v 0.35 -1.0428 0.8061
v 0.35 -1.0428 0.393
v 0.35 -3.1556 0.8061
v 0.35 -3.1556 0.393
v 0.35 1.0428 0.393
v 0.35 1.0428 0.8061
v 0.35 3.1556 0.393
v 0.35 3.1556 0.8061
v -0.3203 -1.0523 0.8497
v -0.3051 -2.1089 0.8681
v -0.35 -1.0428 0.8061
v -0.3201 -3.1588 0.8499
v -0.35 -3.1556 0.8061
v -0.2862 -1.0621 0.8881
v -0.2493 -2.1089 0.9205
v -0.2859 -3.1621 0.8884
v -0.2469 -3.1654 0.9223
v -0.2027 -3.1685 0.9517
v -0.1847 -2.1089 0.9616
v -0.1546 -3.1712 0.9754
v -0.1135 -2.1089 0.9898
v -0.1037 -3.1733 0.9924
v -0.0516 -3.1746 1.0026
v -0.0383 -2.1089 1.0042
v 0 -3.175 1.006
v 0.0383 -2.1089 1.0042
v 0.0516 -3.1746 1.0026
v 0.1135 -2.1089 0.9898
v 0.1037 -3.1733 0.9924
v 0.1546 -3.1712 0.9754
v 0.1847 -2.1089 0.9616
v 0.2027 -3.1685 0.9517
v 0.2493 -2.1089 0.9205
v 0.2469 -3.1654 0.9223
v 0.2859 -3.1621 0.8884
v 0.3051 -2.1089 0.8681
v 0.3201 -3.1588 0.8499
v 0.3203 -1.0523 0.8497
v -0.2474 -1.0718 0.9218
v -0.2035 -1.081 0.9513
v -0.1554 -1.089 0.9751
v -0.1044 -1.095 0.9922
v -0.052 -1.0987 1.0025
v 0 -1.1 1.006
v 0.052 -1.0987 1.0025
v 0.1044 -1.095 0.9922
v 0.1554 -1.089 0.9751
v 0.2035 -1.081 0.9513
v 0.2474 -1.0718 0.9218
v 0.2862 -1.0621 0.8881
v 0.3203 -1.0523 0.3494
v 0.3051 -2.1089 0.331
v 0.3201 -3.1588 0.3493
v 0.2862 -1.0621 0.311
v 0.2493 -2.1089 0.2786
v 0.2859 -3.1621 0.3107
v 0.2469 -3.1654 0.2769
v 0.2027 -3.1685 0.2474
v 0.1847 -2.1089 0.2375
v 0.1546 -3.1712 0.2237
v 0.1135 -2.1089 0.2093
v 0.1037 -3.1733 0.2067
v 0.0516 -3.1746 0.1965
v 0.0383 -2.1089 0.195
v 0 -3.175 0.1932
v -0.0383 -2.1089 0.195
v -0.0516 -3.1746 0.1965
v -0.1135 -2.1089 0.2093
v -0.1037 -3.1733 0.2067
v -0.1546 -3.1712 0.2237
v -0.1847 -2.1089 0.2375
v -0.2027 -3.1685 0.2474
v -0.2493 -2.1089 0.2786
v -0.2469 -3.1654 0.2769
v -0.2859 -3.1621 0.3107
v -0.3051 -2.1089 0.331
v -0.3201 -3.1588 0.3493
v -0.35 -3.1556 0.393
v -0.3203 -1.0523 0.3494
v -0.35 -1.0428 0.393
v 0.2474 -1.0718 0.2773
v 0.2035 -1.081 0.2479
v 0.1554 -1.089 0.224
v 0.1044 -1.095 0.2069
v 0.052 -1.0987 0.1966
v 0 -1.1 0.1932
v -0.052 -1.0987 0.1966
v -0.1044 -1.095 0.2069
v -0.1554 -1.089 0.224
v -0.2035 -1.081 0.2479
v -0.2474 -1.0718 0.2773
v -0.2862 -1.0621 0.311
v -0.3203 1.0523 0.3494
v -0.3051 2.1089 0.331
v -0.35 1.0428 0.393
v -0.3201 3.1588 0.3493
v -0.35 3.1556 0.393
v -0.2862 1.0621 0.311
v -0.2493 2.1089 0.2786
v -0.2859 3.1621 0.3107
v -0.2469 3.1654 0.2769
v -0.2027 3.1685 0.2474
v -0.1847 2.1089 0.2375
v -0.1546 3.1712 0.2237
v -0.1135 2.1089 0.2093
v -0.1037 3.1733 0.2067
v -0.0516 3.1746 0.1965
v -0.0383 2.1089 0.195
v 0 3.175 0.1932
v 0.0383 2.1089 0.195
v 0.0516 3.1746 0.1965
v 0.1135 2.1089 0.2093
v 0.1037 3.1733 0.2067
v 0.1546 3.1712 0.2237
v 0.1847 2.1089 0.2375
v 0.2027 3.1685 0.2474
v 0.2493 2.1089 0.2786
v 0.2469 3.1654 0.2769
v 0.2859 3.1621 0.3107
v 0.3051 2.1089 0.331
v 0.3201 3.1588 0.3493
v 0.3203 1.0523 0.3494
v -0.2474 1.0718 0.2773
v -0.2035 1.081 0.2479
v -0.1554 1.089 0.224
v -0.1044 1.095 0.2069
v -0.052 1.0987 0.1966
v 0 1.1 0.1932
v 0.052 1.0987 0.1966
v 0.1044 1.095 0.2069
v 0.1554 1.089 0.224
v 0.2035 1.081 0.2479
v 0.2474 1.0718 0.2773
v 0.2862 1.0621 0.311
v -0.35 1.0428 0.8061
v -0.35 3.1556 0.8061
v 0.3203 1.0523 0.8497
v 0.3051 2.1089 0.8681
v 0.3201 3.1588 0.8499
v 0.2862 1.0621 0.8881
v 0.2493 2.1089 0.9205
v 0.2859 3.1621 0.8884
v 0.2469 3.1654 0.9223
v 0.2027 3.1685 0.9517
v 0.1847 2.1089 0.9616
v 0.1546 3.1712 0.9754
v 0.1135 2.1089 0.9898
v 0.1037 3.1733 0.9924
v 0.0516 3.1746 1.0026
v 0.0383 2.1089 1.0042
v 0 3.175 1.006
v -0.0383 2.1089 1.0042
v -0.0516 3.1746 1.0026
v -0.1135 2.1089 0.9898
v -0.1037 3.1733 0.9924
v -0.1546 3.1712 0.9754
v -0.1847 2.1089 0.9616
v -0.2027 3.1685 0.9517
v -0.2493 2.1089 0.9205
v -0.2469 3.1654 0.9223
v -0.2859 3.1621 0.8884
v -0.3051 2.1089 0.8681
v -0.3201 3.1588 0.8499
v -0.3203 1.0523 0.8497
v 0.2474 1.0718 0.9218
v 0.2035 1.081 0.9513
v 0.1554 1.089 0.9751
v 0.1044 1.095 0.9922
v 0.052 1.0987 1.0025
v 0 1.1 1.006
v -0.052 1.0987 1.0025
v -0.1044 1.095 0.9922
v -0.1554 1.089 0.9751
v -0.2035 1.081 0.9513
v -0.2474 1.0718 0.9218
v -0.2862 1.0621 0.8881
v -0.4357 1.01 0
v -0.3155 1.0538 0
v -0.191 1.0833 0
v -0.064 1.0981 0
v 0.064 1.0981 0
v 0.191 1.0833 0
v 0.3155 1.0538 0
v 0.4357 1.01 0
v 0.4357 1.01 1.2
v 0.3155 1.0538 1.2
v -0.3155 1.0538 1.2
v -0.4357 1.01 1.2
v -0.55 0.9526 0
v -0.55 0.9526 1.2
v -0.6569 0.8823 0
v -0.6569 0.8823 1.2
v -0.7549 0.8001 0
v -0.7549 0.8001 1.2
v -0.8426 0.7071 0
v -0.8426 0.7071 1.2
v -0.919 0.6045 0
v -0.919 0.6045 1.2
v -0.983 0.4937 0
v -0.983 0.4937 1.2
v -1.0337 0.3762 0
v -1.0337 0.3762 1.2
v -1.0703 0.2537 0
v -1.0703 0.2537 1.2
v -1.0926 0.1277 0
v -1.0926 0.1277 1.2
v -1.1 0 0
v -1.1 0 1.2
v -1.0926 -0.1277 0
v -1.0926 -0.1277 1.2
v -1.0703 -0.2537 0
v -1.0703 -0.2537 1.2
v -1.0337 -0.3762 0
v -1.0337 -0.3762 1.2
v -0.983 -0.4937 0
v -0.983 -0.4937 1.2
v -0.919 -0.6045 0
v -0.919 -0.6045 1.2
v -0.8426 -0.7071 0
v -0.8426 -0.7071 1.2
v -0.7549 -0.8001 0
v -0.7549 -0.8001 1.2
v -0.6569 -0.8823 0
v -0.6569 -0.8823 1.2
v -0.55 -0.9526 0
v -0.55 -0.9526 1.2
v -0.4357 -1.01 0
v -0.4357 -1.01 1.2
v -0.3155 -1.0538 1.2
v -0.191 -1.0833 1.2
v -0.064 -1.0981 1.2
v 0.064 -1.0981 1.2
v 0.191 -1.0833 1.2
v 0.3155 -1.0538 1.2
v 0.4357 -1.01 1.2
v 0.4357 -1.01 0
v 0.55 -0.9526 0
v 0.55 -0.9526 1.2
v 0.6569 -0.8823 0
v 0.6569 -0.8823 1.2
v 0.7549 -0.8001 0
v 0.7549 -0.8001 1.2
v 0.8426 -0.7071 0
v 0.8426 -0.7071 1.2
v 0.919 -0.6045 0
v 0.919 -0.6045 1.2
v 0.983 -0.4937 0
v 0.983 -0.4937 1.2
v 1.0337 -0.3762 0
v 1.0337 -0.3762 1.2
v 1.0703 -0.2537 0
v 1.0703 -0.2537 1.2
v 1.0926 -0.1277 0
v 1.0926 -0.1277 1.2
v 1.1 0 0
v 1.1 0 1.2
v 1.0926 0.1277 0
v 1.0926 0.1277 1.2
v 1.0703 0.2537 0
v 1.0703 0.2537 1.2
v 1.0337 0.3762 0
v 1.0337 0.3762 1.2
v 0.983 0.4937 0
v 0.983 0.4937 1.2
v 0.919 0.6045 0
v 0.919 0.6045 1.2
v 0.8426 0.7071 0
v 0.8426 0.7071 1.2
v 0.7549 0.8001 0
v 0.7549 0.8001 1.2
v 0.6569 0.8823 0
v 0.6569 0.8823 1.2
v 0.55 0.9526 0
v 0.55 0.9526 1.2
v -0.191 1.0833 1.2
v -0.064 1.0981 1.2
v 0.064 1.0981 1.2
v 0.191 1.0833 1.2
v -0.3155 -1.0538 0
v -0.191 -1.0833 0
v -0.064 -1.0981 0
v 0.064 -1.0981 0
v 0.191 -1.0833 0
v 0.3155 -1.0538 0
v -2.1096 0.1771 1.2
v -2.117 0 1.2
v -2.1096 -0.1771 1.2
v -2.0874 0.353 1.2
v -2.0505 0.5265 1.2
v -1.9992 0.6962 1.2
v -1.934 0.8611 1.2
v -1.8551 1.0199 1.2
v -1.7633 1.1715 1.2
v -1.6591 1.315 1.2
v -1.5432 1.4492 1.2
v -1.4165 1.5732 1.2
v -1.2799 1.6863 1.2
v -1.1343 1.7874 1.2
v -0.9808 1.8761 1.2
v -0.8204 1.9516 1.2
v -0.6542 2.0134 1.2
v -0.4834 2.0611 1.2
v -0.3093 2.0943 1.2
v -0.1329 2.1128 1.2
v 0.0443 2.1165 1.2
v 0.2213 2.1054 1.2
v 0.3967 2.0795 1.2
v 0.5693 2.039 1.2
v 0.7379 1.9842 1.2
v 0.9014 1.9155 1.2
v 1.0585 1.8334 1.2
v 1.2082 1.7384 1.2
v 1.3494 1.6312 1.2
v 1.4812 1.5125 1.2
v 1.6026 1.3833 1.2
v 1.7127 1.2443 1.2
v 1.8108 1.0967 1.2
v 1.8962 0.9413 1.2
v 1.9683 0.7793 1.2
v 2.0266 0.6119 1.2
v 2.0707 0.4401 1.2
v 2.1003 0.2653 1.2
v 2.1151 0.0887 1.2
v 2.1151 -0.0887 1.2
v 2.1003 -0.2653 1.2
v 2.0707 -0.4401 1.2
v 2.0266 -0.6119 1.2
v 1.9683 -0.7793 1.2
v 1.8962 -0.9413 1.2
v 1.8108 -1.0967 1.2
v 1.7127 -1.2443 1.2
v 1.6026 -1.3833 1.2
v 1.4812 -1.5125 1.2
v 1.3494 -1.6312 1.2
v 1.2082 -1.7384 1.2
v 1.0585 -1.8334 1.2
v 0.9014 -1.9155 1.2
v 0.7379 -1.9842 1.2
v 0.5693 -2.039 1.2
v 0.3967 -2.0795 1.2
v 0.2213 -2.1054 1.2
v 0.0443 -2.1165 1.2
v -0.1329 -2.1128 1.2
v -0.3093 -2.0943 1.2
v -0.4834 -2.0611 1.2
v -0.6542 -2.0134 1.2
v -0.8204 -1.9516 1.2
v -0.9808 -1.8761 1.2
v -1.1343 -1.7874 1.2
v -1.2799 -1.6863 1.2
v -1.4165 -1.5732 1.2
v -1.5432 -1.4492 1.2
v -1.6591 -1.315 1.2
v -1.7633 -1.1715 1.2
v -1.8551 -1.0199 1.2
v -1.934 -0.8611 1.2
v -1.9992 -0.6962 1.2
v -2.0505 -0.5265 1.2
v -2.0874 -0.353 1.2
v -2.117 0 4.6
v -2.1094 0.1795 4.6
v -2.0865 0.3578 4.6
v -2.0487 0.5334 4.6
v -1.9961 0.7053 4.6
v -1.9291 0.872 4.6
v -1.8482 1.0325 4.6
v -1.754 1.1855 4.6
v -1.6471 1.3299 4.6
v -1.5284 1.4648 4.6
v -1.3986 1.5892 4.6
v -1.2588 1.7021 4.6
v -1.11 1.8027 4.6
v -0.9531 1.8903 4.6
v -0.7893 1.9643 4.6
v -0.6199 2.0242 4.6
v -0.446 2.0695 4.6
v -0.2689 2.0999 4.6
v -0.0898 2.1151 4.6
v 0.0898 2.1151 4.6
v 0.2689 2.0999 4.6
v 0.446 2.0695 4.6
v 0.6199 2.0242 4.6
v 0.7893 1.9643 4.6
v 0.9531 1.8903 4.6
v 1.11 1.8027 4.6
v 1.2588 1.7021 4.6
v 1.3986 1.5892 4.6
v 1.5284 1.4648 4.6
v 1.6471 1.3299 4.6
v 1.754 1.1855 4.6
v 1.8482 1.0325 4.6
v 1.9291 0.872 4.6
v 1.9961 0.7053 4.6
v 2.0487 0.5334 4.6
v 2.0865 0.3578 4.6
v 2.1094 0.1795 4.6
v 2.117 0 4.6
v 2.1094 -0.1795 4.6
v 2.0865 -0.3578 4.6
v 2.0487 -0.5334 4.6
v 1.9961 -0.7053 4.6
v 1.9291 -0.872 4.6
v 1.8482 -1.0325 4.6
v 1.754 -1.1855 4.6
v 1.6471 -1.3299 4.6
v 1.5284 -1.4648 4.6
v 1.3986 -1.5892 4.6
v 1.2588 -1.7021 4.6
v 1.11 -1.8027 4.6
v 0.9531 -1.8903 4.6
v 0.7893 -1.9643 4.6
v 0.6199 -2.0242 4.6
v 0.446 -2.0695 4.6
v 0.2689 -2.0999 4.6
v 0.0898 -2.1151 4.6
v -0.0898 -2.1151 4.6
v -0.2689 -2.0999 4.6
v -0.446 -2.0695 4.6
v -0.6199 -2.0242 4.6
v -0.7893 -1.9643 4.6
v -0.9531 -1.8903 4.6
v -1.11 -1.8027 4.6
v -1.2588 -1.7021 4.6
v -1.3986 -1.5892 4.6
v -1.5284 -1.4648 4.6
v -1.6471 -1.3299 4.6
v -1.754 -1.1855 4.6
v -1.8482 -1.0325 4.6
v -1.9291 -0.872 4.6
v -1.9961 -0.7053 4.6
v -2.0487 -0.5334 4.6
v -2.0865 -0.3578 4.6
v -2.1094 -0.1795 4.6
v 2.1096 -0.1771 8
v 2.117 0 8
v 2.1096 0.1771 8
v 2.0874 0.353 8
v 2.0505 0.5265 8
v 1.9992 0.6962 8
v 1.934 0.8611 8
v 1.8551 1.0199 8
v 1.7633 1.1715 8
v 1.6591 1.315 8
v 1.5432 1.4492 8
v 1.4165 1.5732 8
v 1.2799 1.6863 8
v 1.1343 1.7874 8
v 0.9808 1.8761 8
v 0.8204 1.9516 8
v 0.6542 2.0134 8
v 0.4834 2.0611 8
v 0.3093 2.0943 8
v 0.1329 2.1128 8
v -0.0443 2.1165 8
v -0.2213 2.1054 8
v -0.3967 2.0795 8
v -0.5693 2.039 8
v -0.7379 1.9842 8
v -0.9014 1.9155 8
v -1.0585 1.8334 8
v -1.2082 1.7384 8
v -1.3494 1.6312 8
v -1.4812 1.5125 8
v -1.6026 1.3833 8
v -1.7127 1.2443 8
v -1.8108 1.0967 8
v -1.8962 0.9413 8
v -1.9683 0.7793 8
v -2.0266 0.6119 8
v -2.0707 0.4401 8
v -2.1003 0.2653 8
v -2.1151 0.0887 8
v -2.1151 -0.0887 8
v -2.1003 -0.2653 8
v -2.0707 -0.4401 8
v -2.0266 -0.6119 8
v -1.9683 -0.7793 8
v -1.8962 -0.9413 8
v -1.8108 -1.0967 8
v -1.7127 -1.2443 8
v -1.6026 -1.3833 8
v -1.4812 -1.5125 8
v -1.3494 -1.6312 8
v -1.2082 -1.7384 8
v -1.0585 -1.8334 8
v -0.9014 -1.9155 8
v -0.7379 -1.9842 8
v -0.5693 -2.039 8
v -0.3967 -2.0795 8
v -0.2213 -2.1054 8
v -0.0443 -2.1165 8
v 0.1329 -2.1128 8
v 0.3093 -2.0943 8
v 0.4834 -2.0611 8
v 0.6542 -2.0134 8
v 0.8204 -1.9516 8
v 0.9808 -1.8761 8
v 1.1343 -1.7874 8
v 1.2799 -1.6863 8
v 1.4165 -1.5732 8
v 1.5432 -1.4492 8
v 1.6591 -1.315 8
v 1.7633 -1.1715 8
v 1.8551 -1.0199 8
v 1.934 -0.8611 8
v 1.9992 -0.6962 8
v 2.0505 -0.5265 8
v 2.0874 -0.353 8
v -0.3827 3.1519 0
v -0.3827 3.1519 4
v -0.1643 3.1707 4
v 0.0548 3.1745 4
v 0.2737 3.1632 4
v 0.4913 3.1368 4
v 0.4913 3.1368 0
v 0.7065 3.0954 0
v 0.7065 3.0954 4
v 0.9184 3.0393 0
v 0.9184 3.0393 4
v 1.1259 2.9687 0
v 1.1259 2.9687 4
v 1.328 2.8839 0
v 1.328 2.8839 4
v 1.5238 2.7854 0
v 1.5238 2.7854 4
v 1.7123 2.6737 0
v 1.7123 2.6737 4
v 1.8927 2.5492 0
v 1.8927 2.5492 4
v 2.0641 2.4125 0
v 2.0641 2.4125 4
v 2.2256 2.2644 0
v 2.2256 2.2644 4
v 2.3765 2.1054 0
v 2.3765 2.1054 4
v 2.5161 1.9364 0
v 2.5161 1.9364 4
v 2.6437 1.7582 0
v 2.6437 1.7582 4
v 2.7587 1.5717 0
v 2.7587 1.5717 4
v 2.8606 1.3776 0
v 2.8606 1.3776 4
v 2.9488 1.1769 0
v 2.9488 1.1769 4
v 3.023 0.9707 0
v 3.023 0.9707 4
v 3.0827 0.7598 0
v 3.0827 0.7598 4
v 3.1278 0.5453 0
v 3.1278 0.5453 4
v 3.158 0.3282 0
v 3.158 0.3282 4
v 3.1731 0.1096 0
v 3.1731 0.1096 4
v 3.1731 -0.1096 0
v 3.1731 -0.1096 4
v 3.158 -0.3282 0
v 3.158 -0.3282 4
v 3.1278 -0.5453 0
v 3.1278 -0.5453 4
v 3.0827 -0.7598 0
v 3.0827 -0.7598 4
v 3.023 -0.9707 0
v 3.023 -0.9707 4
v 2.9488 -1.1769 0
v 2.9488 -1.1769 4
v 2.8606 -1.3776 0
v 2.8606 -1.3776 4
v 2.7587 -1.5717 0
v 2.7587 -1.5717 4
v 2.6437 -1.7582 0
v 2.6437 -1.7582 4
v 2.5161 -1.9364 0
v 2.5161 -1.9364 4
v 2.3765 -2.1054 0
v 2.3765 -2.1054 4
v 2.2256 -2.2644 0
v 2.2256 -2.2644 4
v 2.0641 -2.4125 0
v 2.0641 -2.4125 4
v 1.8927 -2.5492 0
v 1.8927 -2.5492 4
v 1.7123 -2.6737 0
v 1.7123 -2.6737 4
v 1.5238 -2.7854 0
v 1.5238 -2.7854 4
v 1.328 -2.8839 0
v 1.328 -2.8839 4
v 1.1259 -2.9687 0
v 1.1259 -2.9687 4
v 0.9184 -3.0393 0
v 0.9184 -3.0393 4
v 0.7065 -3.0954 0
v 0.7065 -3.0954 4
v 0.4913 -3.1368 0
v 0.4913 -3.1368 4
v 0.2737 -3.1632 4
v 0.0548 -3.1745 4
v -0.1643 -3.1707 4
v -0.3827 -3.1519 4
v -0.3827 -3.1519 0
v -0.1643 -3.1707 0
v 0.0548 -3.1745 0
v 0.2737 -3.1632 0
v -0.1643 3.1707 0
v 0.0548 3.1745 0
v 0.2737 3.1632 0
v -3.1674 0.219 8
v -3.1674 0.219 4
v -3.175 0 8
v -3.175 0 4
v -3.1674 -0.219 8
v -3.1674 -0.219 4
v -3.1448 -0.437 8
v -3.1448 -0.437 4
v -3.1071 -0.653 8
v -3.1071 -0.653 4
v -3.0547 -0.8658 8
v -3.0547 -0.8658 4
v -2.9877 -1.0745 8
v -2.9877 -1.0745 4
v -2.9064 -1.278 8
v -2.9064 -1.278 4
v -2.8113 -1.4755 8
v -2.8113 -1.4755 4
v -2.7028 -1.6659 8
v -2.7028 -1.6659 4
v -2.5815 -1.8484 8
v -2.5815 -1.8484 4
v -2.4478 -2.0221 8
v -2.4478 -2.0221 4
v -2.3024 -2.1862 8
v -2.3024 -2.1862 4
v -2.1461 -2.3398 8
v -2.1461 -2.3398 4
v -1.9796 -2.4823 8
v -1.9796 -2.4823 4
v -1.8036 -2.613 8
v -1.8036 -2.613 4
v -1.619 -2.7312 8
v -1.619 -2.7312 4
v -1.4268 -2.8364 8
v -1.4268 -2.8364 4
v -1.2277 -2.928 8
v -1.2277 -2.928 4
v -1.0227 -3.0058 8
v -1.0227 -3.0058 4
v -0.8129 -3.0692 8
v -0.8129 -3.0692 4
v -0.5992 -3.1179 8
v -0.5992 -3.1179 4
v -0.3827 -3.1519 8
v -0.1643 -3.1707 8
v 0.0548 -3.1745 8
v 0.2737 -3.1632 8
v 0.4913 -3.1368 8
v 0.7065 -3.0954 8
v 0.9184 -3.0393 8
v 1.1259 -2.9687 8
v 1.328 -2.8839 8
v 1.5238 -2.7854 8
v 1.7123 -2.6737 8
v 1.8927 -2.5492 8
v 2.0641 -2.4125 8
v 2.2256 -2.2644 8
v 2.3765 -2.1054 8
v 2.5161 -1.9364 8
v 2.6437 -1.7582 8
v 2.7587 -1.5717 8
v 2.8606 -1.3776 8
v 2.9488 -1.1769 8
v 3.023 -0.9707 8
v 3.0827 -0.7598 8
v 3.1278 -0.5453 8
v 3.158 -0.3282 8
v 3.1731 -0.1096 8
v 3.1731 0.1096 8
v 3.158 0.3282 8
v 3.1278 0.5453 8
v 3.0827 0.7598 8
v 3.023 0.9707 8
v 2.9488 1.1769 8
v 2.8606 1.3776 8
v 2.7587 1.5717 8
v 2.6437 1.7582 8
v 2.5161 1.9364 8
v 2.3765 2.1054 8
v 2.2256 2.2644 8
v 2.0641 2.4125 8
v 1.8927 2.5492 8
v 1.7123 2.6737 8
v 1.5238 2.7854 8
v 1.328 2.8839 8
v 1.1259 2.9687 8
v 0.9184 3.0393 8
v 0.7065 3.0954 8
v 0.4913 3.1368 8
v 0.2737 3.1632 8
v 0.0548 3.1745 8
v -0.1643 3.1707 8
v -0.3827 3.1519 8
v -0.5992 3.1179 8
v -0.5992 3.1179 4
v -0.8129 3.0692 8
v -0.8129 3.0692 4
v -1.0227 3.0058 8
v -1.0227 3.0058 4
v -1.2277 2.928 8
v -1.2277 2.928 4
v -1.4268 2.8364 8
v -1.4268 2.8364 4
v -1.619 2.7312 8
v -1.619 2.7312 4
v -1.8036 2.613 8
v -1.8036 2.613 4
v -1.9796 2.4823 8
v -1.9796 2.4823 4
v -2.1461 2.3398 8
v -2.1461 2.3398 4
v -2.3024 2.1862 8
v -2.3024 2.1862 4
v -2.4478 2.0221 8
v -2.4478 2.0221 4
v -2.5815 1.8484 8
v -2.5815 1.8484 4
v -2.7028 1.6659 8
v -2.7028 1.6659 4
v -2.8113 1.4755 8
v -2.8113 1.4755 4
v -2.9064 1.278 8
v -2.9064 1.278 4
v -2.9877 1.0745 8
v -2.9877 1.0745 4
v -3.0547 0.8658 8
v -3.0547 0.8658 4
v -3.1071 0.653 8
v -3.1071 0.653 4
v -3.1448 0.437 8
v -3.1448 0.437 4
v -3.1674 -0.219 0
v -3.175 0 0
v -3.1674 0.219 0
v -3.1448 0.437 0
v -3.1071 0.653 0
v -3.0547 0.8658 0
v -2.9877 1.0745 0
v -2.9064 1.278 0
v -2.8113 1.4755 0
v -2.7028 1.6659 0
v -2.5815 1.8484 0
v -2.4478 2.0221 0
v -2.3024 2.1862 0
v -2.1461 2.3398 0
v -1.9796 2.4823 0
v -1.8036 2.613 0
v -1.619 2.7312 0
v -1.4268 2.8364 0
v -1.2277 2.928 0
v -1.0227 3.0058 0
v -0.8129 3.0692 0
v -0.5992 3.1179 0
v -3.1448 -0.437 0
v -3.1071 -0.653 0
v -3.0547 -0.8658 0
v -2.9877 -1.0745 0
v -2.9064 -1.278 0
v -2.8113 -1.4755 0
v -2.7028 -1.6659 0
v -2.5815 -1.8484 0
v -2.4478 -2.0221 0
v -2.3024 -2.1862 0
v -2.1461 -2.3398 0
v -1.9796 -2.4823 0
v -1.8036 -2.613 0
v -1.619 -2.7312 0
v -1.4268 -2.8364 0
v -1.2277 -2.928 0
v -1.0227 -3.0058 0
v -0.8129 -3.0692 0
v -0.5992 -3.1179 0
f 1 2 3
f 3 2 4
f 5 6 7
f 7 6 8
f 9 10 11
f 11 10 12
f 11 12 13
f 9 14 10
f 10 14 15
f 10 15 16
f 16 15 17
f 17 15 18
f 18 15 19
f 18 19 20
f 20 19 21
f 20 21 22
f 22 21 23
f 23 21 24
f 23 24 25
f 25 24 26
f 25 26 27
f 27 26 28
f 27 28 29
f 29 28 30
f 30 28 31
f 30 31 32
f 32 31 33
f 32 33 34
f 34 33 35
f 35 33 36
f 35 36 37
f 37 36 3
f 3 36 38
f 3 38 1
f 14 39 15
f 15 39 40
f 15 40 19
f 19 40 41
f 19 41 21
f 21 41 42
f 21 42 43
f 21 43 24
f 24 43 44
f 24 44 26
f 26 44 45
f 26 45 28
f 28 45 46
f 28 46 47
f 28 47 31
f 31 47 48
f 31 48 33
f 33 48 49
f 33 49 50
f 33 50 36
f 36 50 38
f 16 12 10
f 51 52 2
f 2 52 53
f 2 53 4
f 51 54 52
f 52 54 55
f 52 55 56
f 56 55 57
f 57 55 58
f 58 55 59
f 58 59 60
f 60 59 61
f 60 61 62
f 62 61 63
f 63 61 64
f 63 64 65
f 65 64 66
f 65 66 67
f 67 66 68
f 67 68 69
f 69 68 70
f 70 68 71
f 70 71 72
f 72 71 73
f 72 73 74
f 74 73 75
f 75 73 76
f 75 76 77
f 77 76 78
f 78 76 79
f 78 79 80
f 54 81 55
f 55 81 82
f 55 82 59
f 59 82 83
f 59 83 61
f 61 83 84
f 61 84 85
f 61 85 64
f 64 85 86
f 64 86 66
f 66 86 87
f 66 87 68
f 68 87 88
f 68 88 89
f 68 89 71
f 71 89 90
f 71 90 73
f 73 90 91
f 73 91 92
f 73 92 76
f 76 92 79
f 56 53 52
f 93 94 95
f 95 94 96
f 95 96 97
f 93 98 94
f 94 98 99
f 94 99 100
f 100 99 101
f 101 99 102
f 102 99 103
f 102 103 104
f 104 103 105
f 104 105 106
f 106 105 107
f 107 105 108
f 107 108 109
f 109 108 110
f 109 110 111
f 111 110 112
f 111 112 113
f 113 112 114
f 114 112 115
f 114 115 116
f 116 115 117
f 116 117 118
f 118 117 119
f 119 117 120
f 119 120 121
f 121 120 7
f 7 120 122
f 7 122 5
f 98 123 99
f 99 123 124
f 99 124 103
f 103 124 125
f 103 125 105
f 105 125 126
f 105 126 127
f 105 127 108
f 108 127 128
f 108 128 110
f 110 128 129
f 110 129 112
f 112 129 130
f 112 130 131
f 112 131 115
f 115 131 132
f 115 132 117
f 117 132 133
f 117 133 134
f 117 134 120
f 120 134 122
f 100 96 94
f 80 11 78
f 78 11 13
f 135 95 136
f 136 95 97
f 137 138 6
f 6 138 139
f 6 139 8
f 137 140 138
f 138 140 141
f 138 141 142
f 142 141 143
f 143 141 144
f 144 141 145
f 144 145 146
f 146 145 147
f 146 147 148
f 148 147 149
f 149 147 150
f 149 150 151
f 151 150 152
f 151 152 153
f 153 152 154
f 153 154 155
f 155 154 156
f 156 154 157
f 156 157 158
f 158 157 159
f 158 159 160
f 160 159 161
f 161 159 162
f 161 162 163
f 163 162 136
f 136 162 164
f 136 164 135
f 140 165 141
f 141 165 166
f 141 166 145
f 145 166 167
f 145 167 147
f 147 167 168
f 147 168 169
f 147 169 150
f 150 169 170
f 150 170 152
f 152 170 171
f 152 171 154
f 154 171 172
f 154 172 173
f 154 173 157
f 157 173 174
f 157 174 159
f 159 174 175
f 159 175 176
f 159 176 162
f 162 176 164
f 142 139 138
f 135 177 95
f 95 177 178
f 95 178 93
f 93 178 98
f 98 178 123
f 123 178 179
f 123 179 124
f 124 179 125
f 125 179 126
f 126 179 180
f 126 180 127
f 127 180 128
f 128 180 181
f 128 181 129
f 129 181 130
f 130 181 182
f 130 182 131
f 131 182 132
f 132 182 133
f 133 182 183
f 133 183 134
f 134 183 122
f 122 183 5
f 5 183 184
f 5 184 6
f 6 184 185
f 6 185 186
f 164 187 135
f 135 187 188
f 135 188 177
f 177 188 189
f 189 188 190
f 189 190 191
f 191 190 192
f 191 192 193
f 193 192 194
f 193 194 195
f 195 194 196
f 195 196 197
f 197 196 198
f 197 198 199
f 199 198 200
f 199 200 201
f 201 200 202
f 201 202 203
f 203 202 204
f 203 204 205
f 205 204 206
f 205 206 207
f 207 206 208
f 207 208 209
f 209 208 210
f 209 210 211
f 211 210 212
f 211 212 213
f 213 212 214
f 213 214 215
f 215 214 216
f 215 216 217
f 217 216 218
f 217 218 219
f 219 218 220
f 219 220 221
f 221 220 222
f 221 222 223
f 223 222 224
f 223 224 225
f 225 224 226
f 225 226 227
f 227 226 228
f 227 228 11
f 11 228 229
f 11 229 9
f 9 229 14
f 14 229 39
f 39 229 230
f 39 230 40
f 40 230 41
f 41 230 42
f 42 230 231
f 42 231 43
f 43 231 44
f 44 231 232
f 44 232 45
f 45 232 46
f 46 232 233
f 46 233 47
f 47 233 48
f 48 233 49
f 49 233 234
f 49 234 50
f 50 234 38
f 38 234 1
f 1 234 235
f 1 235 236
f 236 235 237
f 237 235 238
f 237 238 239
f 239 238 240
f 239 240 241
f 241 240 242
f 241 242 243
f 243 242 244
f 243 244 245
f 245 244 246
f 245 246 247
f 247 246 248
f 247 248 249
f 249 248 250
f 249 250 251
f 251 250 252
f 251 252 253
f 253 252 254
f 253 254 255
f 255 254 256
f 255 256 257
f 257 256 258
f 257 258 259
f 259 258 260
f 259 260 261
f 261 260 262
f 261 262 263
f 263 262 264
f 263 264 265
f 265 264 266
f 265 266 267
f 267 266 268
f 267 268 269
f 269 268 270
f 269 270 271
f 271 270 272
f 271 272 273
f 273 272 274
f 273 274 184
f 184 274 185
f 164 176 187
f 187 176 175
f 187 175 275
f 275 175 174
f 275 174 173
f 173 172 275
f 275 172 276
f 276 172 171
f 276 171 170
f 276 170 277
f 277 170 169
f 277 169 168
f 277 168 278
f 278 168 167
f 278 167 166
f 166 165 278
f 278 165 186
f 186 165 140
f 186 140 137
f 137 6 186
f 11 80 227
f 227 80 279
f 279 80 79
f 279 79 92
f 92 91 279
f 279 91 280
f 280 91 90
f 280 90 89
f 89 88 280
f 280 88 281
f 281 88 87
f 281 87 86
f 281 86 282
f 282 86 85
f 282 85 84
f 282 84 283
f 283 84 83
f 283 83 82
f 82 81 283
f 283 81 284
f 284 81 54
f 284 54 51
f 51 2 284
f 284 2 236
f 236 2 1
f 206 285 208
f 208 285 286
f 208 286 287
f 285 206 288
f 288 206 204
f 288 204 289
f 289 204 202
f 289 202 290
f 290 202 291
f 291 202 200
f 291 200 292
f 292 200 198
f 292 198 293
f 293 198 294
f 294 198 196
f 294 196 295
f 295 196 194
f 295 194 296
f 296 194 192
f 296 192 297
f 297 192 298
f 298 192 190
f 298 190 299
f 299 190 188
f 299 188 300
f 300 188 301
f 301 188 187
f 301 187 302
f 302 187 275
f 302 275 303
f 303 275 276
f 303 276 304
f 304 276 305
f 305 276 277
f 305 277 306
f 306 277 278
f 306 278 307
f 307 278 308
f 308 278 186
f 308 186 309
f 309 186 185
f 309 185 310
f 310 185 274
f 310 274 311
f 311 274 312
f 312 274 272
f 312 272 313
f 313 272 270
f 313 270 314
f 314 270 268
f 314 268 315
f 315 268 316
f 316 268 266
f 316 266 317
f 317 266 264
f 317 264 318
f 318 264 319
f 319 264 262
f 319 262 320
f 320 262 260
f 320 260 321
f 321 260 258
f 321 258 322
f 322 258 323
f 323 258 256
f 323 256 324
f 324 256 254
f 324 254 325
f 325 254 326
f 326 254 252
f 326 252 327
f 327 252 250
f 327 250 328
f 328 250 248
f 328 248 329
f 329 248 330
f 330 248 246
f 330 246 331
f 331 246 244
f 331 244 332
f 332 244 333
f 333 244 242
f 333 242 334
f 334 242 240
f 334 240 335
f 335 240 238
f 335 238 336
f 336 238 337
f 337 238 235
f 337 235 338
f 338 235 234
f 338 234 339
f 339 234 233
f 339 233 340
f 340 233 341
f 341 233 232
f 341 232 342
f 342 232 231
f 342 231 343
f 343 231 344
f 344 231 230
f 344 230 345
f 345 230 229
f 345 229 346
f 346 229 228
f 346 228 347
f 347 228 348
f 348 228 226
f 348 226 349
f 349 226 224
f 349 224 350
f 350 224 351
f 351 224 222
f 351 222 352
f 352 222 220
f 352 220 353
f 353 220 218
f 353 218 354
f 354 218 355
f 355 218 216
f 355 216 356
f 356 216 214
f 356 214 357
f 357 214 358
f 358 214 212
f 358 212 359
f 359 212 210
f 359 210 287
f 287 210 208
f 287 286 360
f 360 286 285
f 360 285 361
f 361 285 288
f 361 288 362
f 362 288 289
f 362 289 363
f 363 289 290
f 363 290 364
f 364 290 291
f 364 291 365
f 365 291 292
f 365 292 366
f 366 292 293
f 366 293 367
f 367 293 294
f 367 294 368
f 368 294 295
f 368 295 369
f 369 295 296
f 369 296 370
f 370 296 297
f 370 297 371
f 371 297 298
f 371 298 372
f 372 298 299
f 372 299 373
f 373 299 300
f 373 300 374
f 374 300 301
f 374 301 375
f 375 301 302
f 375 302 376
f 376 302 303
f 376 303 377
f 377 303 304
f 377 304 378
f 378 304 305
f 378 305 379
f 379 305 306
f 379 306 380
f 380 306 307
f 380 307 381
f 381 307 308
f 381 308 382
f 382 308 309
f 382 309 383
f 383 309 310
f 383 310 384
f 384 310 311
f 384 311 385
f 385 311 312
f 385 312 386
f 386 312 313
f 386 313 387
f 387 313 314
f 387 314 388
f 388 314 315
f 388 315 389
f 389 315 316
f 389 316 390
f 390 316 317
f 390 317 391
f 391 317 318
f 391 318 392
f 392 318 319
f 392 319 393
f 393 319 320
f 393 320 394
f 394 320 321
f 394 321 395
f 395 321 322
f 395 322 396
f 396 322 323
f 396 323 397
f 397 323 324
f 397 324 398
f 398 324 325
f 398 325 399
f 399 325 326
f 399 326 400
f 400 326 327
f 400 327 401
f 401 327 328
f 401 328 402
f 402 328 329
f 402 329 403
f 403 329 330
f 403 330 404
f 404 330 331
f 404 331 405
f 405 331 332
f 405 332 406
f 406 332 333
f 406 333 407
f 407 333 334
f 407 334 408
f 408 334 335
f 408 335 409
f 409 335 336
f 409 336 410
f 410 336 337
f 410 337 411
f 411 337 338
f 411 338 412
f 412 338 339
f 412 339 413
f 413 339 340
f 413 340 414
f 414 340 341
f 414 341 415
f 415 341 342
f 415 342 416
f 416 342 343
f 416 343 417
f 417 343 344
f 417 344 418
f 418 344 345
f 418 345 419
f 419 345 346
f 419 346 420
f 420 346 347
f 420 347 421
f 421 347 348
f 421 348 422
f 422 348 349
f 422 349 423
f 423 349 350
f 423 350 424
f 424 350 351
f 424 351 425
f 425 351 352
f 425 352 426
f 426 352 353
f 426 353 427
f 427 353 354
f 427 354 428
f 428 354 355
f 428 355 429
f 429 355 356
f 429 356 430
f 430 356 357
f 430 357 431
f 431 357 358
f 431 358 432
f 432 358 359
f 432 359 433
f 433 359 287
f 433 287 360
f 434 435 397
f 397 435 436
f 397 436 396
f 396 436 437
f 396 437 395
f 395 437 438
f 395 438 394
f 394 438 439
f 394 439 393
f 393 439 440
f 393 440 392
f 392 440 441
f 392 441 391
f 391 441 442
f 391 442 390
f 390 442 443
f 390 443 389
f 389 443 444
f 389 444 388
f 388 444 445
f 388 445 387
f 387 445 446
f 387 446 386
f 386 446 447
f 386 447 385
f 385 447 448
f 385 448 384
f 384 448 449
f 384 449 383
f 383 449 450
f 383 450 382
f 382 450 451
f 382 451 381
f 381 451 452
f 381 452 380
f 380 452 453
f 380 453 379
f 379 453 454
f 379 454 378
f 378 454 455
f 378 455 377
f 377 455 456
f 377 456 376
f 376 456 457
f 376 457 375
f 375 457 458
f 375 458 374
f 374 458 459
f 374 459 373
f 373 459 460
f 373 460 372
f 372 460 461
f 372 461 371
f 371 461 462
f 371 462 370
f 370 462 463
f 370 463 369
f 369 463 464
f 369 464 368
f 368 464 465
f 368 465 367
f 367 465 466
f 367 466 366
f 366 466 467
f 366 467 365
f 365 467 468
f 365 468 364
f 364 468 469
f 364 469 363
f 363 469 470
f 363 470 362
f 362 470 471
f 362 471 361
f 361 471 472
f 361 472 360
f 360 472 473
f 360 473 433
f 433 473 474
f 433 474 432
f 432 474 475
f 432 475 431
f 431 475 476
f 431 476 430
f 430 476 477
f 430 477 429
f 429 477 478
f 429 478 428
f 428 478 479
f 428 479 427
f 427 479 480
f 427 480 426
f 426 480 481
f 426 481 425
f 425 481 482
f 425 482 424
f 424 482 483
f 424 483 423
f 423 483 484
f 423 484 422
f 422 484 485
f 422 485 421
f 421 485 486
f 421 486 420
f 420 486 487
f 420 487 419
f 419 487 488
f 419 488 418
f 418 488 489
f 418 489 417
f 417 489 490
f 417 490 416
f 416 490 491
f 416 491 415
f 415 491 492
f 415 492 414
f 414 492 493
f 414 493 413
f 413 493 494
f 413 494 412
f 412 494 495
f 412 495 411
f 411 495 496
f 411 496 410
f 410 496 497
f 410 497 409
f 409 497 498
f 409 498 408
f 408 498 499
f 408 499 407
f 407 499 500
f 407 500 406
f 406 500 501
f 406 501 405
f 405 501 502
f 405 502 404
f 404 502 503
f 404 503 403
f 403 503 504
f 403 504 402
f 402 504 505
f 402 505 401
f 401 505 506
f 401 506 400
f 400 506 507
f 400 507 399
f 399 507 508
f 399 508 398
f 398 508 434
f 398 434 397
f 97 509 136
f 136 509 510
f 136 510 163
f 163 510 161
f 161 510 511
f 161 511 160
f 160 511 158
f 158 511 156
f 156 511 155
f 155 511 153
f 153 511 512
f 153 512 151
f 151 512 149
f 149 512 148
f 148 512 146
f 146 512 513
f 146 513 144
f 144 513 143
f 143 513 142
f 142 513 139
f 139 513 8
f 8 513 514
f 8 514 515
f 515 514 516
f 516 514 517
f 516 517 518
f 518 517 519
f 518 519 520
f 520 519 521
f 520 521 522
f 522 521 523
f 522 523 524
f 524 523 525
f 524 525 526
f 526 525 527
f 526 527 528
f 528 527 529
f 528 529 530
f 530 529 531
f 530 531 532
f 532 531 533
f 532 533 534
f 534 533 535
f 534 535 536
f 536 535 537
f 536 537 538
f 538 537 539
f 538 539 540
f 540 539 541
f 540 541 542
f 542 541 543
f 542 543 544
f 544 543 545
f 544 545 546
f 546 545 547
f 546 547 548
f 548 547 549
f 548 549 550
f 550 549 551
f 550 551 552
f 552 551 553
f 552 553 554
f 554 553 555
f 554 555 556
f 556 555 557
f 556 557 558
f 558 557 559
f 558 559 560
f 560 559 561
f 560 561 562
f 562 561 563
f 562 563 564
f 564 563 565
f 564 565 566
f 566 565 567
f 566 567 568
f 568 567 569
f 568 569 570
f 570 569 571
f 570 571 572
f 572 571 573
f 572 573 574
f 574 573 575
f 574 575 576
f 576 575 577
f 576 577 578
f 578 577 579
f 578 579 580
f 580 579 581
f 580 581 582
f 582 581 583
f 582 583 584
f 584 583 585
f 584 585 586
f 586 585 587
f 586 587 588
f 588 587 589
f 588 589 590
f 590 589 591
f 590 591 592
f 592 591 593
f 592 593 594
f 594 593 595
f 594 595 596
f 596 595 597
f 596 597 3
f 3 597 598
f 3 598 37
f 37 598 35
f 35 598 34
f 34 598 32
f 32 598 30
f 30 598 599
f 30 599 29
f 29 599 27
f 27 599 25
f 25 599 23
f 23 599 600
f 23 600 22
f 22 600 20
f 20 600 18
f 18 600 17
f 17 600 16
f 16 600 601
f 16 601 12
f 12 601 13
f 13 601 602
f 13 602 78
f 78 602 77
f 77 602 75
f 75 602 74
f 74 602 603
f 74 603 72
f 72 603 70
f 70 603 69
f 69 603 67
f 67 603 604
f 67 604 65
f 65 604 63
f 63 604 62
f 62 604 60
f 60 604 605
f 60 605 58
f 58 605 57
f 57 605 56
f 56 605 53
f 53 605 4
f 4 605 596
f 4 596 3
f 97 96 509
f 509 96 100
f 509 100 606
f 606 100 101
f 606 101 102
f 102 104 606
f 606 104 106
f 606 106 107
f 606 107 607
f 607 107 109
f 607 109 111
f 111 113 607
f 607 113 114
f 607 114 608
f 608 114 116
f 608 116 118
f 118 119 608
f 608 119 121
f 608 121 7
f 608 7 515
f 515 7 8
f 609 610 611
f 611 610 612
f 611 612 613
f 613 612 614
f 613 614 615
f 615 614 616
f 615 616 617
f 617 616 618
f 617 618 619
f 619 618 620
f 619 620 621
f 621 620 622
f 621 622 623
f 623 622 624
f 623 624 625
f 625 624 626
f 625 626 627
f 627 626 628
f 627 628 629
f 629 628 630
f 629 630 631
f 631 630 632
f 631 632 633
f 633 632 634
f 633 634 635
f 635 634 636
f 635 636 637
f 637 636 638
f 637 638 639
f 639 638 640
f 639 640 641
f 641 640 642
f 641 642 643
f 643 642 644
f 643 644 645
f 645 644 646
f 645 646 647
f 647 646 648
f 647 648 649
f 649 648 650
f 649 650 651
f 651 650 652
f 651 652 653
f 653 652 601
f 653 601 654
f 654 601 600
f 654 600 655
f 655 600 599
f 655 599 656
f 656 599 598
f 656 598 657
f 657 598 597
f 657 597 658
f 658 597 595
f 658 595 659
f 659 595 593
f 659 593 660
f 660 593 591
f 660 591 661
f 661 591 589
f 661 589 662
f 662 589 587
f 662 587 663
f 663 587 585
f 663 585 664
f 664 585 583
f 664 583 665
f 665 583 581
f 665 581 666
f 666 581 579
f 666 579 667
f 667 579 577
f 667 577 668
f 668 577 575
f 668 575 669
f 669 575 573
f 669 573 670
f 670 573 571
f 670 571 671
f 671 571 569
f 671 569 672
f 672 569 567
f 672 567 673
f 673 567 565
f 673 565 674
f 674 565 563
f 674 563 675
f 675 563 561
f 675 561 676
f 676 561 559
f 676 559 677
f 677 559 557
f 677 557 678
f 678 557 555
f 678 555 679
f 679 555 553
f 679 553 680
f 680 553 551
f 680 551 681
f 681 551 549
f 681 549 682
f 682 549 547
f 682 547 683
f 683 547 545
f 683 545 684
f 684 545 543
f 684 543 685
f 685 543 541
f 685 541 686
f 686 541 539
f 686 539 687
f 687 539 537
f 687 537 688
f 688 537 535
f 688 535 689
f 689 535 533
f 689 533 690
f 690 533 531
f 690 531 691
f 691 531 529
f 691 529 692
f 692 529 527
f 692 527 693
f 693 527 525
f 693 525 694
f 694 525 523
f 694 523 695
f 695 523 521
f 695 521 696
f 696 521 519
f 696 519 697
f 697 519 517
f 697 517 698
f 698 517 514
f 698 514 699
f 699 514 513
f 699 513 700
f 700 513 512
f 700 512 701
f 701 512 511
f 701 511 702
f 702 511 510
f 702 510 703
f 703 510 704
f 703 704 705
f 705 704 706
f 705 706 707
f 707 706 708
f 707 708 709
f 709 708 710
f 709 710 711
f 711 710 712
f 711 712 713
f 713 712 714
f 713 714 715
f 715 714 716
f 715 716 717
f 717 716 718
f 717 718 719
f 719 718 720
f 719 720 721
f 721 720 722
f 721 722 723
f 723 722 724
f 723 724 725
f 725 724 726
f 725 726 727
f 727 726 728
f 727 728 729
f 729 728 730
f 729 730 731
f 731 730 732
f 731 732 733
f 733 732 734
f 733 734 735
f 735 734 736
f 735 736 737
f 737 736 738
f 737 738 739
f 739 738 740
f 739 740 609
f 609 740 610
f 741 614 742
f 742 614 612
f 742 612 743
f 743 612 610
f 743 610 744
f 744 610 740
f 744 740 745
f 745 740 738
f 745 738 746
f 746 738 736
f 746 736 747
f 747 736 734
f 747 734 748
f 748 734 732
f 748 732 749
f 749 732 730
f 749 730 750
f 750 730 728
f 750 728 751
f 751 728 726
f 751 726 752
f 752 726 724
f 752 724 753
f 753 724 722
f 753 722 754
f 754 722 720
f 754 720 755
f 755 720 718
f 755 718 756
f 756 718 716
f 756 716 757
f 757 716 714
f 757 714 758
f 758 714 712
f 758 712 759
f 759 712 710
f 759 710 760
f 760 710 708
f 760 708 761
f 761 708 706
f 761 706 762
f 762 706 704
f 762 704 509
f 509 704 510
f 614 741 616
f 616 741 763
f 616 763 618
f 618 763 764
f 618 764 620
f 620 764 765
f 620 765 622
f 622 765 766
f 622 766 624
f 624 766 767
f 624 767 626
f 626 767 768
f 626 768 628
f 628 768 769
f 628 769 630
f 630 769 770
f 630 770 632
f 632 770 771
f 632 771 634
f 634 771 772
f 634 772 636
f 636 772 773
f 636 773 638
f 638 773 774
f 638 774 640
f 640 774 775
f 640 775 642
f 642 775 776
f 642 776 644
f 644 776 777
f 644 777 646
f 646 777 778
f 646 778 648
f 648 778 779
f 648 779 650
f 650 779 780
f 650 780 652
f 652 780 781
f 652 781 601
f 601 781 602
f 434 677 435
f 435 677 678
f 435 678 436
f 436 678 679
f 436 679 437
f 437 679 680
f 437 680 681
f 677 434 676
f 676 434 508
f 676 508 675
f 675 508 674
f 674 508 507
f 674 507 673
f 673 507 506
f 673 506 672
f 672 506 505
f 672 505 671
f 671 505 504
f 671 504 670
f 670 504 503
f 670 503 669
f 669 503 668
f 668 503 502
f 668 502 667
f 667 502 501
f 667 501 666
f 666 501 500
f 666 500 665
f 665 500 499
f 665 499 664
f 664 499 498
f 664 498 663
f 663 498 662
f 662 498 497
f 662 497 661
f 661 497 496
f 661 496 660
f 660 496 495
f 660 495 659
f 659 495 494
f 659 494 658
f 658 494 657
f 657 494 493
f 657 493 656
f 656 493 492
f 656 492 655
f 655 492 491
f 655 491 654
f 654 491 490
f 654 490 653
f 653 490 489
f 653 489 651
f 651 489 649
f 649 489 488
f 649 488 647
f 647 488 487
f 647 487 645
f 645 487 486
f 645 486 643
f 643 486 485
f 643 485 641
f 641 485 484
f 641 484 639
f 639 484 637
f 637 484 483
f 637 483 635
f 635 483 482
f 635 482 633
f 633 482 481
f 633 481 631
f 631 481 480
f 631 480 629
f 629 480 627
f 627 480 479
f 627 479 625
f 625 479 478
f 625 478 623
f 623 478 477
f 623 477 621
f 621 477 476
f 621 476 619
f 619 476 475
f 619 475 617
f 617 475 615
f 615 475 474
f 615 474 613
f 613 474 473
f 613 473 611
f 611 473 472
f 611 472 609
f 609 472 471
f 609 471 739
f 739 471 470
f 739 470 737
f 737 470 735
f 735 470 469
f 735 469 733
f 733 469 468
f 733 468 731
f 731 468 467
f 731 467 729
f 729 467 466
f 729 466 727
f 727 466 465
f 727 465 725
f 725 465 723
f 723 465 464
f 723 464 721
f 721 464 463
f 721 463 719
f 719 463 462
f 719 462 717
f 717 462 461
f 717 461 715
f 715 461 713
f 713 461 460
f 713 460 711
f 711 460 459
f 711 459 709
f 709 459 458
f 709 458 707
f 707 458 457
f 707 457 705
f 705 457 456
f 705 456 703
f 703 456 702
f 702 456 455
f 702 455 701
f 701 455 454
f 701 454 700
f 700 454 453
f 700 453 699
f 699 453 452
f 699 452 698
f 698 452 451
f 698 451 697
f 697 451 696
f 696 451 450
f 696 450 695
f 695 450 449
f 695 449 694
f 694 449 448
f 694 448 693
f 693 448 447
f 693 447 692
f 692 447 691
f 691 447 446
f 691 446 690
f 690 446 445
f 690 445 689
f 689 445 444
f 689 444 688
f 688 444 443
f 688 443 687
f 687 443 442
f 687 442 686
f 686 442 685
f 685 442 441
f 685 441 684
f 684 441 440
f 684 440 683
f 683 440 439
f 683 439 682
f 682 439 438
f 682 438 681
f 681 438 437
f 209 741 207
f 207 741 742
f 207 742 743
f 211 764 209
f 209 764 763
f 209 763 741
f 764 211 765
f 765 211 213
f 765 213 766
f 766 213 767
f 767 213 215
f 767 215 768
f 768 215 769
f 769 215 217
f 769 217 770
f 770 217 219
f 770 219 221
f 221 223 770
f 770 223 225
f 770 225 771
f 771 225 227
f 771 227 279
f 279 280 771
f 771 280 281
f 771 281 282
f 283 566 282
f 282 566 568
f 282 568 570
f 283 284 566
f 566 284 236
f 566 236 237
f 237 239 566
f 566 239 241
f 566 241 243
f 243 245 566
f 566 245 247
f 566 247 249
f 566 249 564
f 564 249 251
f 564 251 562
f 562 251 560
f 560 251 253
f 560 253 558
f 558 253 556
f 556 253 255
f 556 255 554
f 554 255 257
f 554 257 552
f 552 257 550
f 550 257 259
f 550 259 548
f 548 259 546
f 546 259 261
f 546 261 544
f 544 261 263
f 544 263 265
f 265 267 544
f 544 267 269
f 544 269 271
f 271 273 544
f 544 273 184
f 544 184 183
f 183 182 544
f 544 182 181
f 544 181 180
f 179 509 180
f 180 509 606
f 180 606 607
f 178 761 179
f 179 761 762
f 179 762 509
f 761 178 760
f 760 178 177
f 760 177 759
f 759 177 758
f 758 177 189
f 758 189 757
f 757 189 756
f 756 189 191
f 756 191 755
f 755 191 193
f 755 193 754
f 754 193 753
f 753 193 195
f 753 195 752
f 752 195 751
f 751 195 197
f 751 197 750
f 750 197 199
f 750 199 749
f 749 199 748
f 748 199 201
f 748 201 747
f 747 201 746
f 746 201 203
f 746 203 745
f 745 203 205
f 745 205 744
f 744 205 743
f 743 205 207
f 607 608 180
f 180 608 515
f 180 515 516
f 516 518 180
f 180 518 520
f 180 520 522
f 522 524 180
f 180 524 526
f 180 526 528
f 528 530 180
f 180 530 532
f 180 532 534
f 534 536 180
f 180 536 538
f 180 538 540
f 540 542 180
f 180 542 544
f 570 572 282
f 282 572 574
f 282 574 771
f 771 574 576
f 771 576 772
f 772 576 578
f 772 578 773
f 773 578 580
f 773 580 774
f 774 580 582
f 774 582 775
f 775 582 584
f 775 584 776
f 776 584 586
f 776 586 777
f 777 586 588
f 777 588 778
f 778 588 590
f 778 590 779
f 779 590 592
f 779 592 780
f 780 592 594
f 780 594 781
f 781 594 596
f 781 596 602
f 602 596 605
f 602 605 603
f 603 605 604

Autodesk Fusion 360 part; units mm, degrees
sketch "Sketch1" plane through (0, 0, 0) normal (0, 0, 1) x (1, 0, 0)
  circle A0 centre (0, 0) radius 3.175
  dimension "d1" = 6.35
extrude "Extrude1" add sketch "Sketch1" along normal blind 8
sketch "Sketch2" plane through (0, 0, 8) normal (0, 0, 1) x (-1, 0, 0)
  circle A0 centre (0, 0) radius 3.175
  circle A1 centre (0, 0) radius 2
hole "Hole1" at (0, 0, 8) direction (0, 0, -1) diameter 4.234 depth 8 tip angle 180
thread "Thread1" "ISO Metric profile 5.0 M5x0.8 6H" major diameter 5.12 minor diameter 4.234 pitch 0.8 angle 60 resizes the face on face at (0.2108, -2.1065, 5.3333) from (0, 0, 8) to (0, 0, 1.5)
sketch "Sketch4" plane through (0, 0, 0) normal (1, 0, 0) x (0, 1, 0)
  line L0 (3.175, 8) -> (-3.175, 8)
sketch "Sketch5" plane through (0, 0, 0) normal (0, 0, -1) x (1, 0, 0)
  circle A0 centre (0, 0) radius 2.117
  circle A1 centre (0, 0) radius 3.175
  circle A2 centre (0, 0) radius 3.5
  circle A3 centre (0, 0) radius 2.117
  circle A4 centre (0, 0) radius 1.1
  dimension "d17" = 7
  dimension "d18" = 4.234
  dimension "d19" = 2.2
extrude "Extrude3" add sketch "Sketch5" against normal blind 1.2 contours A0 A3
sketch "Sketch3" plane through (0, 0, 0) normal (0, 1, 0) x (1, 0, 0)
  line L0 (-0.5, -0.1) -> (0.5, -0.1)
  line L1 (0.5, -0.1) -> (0.5, -1.1)
  line L2 (0.5, -1.1) -> (-0.5, -1.1)
  line L3 (-0.5, -1.1) -> (-0.5, -0.1)
  line L4 (0, -1.75) -> (0, -22.5)
  line L5 (1.75, 0) -> (22.5, 0)
  circle A0 centre (0, -0.5996) radius 0.4064
  line L6 (0, -0.5996) -> (0, -1.1) construction
  line L7 (-0.35, -0.8061) -> (-0.35, -0.393)
  line L8 (0.35, -0.8061) -> (0.35, -0.393)
  dimension "d9" = 1
  dimension "d10" = 1
  dimension "d15" = 0.1
  dimension "d16" = 0.8128
  dimension "d24" = 0.4996
  dimension "d25" = 0.35
extrude "Extrude2" cut sketch "Sketch3" along normal mid plane 9 contours A0 L7 L8
fillet "Fillet2" [suppressed]
